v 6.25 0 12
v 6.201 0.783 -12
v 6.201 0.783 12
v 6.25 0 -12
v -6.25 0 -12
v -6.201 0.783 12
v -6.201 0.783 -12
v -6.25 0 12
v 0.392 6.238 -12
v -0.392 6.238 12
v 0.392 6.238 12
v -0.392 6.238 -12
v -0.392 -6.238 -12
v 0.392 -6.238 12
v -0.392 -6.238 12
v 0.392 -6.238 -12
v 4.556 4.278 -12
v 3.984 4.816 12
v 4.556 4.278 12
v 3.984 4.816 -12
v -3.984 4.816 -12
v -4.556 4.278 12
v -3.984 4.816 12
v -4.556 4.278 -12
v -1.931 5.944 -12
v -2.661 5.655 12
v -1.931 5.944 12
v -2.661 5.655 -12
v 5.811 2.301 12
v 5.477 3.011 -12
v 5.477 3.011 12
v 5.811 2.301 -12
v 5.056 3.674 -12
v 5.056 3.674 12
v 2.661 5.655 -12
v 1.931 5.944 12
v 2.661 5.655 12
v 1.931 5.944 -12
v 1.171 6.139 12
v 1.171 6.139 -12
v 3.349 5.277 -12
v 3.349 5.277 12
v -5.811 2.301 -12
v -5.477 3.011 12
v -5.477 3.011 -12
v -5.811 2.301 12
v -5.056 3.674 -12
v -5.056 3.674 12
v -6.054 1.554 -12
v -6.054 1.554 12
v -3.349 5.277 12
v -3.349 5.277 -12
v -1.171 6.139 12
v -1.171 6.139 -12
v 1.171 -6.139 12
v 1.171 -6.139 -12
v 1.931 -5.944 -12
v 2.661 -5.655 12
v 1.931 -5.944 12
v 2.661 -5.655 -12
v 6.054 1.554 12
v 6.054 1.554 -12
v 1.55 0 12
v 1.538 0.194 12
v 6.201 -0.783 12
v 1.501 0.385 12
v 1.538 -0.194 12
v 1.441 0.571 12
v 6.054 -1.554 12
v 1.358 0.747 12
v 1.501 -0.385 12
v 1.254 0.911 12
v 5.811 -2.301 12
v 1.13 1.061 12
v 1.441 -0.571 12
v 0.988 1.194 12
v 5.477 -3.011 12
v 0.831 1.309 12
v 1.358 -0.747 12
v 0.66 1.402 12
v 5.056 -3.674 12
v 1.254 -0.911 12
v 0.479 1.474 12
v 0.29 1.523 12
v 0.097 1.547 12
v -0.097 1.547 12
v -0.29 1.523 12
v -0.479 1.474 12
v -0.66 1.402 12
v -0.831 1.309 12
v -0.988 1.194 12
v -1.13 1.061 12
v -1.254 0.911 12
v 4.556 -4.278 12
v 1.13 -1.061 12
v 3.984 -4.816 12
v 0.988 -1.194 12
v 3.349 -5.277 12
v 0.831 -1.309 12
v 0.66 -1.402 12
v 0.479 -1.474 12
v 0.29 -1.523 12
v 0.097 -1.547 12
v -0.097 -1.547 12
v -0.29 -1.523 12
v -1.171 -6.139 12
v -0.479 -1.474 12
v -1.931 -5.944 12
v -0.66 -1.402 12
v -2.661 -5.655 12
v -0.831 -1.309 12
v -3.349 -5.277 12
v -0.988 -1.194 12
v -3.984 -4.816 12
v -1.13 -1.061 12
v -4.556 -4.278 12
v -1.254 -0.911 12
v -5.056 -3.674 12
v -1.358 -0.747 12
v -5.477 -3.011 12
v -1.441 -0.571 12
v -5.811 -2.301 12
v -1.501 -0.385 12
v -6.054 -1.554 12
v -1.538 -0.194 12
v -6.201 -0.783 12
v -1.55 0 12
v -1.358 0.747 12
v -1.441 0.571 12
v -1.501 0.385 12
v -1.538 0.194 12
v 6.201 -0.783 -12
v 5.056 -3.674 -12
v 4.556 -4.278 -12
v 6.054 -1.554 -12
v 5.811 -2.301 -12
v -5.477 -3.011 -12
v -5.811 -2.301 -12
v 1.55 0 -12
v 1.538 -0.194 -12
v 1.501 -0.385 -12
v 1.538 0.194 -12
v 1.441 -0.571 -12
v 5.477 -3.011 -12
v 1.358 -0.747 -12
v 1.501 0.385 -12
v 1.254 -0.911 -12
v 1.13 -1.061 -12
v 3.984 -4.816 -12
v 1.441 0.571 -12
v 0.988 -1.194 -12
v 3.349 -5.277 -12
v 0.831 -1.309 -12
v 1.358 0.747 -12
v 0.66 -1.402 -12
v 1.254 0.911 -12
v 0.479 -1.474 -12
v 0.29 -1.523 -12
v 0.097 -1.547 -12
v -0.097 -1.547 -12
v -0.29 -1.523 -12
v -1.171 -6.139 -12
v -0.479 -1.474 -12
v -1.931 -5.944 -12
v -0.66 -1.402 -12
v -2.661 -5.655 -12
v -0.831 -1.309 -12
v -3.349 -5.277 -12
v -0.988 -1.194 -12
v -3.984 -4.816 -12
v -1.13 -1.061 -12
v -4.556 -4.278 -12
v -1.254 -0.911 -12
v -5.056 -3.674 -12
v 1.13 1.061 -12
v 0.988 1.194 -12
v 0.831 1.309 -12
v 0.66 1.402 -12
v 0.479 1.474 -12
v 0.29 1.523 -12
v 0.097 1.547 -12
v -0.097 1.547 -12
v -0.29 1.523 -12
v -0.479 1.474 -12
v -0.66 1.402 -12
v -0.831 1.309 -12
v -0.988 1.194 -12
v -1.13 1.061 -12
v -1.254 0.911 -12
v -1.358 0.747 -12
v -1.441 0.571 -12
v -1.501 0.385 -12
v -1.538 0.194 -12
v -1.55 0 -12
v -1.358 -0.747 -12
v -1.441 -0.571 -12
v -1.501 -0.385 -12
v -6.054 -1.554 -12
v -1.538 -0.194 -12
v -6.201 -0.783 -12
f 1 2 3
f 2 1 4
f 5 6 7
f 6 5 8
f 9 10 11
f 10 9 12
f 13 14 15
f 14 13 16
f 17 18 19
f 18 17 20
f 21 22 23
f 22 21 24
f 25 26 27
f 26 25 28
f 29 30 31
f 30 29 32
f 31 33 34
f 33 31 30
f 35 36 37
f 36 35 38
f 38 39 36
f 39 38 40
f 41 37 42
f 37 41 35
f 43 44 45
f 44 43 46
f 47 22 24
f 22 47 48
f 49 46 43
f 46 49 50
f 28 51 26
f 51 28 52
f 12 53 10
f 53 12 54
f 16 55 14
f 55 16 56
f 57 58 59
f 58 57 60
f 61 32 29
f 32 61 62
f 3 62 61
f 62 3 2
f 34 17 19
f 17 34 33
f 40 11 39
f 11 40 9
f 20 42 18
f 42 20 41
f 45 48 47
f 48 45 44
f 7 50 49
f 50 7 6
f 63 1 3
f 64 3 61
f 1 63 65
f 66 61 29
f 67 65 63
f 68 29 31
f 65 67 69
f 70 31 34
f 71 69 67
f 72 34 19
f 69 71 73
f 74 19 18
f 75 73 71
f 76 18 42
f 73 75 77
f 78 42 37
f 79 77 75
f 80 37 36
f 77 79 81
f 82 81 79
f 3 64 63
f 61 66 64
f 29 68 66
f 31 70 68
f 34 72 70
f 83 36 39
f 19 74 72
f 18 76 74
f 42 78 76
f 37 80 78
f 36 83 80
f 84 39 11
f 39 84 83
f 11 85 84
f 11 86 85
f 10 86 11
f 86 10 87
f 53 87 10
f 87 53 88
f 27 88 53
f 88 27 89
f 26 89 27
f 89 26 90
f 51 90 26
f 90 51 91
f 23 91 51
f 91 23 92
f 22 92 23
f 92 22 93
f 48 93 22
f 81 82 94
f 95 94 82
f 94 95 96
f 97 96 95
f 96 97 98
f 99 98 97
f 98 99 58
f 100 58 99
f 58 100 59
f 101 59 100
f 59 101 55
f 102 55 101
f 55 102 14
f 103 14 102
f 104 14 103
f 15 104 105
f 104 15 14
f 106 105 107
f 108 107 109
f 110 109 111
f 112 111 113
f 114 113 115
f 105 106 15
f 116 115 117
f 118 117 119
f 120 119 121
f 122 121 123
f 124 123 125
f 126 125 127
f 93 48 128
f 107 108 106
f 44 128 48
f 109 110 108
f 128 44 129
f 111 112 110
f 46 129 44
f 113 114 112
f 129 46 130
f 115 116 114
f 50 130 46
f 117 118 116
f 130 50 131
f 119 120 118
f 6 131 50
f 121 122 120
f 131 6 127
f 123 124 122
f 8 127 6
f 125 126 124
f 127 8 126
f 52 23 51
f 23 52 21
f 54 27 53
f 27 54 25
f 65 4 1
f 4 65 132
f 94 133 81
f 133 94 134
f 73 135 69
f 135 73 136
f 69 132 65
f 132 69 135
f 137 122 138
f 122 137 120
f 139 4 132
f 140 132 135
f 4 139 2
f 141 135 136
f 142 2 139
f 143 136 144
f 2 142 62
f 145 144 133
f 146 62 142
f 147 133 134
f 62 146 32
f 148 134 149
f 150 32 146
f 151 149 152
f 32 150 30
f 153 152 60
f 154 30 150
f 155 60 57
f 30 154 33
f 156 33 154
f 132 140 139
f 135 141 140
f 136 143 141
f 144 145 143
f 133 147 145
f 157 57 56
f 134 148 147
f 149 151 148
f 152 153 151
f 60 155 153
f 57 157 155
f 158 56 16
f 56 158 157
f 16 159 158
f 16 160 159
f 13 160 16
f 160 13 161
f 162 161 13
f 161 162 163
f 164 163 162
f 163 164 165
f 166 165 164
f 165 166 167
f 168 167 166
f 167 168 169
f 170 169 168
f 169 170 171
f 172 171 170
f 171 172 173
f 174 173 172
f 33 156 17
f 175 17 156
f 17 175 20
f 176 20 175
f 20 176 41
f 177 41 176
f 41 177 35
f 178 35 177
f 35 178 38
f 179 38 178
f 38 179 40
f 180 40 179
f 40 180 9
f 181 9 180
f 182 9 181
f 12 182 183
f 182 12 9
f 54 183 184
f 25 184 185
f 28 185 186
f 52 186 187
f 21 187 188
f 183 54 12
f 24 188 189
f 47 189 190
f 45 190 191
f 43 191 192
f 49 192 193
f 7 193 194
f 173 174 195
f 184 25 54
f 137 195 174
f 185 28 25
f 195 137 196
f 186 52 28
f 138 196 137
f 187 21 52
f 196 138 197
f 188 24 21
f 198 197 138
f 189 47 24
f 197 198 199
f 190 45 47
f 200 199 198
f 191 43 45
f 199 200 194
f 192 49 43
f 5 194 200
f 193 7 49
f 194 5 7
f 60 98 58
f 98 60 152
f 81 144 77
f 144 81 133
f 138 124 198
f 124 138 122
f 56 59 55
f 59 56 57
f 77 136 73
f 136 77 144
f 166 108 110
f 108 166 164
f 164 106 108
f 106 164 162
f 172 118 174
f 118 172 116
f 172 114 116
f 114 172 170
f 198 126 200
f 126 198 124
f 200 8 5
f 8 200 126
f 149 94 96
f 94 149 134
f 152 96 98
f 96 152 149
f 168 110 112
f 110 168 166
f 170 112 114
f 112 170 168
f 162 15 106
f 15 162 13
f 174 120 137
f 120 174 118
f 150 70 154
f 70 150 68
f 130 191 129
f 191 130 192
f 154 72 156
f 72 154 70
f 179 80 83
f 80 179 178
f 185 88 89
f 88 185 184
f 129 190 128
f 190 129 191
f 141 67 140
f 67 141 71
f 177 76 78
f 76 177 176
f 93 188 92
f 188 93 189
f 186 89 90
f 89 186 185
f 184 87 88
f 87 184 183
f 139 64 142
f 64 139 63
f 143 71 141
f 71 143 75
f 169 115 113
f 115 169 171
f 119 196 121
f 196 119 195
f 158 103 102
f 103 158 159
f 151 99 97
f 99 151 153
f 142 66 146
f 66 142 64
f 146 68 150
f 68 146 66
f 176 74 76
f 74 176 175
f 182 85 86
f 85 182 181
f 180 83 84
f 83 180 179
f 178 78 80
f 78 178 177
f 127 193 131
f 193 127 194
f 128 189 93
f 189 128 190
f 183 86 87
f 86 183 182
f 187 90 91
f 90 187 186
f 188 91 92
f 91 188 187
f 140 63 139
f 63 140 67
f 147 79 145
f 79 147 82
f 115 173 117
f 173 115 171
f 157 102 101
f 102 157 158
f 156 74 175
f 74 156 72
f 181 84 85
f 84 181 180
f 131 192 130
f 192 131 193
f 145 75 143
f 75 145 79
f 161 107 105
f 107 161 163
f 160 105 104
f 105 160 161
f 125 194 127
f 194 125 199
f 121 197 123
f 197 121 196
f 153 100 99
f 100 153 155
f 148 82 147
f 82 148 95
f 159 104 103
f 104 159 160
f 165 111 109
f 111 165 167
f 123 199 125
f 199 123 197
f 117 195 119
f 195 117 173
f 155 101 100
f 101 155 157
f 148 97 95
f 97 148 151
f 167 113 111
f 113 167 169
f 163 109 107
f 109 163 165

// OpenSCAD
$fn = 50;


difference() {
	union() {
		translate(v = [0, 0, -12.0000000000]) {
			cylinder(h = 24, r = 6.2500000000);
		}
	}
	union() {
		translate(v = [0, 0, -100.0000000000]) {
			cylinder(h = 200, r = 1.5500000000);
		}
	}
}
